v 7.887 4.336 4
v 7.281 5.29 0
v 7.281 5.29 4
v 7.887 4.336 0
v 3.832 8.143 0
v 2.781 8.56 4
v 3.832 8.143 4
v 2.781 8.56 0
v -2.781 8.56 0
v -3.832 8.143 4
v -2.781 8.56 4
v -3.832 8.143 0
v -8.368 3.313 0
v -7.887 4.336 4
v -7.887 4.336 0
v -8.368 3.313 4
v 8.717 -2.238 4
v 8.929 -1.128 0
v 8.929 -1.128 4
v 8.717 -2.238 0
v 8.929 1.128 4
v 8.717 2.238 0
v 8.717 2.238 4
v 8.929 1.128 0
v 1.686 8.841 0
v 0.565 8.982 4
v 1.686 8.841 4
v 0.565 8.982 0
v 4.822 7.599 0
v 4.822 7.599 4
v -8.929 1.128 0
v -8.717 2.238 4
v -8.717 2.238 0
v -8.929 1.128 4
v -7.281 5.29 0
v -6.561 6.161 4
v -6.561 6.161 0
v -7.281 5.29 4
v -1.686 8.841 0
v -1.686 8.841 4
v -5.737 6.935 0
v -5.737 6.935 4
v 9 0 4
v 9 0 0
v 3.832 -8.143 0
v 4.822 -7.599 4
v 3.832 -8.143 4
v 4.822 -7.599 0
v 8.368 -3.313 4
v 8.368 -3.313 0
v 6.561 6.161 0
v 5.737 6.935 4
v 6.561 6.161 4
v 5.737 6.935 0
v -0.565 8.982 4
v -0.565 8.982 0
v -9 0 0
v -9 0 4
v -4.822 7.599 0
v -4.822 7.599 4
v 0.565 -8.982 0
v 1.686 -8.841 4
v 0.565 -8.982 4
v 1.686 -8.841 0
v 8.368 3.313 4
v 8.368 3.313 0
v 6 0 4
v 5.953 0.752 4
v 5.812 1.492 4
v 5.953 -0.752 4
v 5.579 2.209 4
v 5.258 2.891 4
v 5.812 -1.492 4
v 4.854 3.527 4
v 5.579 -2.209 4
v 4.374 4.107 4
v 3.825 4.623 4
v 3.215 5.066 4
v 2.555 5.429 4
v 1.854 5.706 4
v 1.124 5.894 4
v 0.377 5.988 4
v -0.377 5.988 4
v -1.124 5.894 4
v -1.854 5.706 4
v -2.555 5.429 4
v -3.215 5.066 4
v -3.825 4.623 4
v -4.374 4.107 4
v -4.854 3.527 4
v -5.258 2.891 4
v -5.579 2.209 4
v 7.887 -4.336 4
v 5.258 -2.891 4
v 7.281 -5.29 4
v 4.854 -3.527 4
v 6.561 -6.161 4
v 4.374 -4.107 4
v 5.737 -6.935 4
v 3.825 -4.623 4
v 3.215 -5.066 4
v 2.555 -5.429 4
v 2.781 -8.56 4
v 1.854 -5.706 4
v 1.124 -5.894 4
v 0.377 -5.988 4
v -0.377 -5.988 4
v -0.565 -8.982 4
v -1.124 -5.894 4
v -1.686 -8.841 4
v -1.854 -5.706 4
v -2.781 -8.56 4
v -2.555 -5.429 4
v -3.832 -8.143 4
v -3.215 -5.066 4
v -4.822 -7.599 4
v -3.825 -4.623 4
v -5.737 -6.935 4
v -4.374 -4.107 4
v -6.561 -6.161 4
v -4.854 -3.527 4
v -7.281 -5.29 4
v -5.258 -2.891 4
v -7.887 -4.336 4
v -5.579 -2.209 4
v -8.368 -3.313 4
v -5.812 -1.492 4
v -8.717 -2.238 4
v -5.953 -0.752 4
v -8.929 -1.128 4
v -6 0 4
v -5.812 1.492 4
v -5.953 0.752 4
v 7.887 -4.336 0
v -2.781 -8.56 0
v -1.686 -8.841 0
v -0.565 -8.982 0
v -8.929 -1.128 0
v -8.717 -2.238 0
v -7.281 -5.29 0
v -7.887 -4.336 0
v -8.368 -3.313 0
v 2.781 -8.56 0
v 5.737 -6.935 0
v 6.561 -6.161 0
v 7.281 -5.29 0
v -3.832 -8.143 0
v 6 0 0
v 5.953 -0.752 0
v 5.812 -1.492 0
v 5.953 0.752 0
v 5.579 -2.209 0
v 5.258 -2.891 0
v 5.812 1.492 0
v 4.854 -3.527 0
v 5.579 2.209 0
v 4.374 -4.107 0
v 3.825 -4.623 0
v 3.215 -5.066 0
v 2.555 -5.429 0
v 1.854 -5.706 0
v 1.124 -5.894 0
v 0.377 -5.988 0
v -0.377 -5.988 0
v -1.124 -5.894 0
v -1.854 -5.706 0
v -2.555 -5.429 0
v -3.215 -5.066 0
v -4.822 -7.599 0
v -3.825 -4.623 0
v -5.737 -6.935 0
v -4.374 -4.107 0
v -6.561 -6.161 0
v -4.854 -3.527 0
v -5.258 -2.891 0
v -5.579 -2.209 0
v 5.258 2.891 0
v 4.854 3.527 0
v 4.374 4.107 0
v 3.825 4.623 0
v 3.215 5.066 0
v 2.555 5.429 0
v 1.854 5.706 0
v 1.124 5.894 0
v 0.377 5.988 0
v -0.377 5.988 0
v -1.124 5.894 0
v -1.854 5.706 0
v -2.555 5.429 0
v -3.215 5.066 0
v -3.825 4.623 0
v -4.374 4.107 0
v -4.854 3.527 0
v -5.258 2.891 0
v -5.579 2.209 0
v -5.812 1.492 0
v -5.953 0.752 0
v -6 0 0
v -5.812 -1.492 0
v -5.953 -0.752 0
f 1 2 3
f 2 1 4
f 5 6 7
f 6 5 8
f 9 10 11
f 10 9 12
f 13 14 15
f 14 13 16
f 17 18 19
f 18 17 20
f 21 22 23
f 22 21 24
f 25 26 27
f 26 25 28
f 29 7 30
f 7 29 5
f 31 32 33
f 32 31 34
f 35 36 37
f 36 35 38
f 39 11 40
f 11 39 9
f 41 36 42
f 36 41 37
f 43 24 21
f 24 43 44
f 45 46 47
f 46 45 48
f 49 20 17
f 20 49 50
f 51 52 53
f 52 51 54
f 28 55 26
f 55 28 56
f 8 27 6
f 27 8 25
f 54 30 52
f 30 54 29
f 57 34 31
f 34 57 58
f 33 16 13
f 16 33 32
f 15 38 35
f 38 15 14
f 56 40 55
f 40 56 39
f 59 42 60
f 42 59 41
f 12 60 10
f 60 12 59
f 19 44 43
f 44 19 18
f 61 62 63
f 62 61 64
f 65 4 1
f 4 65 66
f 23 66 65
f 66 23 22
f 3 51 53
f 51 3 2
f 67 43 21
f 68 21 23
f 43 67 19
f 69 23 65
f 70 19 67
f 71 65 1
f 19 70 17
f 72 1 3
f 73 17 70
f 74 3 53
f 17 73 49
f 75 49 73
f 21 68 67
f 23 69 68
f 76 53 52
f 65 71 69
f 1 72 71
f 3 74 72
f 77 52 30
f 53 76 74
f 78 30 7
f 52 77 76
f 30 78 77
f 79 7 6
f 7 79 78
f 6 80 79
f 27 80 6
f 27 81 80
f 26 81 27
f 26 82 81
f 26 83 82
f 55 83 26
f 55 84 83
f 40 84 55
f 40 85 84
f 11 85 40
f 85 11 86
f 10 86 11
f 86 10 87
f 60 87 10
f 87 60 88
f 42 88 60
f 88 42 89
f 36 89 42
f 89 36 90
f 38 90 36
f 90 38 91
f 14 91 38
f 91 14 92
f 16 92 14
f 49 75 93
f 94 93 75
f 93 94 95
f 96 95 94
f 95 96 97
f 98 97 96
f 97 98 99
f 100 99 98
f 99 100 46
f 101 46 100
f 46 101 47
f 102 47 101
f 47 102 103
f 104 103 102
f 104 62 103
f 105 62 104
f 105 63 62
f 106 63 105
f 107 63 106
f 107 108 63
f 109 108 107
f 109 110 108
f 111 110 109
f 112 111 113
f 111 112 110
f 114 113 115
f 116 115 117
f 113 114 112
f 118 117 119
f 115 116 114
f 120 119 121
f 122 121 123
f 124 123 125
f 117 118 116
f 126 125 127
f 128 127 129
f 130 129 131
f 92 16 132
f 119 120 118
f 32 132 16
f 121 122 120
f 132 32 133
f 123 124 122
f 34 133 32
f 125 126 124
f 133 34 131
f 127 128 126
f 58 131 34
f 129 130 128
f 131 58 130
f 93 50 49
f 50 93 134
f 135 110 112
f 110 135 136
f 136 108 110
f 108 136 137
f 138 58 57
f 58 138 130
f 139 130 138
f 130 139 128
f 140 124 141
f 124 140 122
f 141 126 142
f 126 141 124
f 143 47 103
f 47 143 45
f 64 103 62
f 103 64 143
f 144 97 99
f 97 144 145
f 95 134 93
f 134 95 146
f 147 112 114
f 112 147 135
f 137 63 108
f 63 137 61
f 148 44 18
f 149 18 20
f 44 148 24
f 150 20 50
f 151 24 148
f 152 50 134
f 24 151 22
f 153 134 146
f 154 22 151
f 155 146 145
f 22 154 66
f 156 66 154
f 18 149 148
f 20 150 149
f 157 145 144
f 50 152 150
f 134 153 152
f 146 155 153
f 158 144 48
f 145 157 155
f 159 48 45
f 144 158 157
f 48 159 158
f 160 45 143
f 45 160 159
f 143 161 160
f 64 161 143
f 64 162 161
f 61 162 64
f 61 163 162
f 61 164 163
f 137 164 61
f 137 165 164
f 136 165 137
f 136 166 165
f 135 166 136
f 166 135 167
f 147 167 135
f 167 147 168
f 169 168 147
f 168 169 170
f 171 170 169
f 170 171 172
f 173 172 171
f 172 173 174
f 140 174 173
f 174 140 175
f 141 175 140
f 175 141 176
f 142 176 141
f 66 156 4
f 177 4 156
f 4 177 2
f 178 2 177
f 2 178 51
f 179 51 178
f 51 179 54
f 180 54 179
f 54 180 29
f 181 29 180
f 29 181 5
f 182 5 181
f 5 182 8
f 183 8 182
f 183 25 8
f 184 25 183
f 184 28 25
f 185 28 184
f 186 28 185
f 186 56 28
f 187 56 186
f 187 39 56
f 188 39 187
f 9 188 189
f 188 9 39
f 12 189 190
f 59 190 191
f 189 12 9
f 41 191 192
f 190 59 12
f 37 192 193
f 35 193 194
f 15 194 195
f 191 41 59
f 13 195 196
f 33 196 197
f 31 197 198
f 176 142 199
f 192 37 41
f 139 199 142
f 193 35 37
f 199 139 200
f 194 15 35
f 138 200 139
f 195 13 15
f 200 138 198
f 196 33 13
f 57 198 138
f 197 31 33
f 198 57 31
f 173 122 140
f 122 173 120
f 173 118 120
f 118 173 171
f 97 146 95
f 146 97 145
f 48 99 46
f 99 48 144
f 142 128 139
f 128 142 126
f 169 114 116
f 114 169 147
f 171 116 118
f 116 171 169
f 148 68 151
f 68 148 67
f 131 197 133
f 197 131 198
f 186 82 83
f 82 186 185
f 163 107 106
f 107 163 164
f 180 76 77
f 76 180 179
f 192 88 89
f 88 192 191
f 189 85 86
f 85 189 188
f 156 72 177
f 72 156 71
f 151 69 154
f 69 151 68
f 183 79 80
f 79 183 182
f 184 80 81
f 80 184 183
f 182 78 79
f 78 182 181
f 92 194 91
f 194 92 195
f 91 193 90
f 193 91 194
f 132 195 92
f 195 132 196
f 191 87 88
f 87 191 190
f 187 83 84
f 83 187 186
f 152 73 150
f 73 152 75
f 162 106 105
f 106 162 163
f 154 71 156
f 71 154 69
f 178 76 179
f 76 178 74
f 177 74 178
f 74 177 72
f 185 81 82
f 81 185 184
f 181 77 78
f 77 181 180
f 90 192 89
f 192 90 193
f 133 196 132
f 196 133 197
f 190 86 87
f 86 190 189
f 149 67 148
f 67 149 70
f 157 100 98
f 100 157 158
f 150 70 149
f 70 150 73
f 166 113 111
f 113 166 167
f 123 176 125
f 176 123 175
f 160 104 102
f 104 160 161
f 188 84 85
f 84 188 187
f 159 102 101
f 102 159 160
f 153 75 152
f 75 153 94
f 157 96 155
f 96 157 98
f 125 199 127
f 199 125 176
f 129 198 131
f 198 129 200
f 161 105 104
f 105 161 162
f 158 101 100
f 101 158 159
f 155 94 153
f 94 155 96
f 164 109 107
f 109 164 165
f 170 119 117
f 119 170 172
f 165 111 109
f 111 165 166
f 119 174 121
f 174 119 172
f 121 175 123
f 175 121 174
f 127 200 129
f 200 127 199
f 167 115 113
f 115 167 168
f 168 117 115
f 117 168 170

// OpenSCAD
$fn = 50;


difference() {
	union() {
		translate(v = [0, 0, 0]) {
			rotate(a = [0, 0, 0]) {
				cylinder(h = 4, r = 9.0000000000);
			}
		}
	}
	union() {
		translate(v = [0, 0, 0]) {
			rotate(a = [0, 0, 0]) {
				cylinder(h = 4, r = 6.0000000000);
			}
		}
	}
}
